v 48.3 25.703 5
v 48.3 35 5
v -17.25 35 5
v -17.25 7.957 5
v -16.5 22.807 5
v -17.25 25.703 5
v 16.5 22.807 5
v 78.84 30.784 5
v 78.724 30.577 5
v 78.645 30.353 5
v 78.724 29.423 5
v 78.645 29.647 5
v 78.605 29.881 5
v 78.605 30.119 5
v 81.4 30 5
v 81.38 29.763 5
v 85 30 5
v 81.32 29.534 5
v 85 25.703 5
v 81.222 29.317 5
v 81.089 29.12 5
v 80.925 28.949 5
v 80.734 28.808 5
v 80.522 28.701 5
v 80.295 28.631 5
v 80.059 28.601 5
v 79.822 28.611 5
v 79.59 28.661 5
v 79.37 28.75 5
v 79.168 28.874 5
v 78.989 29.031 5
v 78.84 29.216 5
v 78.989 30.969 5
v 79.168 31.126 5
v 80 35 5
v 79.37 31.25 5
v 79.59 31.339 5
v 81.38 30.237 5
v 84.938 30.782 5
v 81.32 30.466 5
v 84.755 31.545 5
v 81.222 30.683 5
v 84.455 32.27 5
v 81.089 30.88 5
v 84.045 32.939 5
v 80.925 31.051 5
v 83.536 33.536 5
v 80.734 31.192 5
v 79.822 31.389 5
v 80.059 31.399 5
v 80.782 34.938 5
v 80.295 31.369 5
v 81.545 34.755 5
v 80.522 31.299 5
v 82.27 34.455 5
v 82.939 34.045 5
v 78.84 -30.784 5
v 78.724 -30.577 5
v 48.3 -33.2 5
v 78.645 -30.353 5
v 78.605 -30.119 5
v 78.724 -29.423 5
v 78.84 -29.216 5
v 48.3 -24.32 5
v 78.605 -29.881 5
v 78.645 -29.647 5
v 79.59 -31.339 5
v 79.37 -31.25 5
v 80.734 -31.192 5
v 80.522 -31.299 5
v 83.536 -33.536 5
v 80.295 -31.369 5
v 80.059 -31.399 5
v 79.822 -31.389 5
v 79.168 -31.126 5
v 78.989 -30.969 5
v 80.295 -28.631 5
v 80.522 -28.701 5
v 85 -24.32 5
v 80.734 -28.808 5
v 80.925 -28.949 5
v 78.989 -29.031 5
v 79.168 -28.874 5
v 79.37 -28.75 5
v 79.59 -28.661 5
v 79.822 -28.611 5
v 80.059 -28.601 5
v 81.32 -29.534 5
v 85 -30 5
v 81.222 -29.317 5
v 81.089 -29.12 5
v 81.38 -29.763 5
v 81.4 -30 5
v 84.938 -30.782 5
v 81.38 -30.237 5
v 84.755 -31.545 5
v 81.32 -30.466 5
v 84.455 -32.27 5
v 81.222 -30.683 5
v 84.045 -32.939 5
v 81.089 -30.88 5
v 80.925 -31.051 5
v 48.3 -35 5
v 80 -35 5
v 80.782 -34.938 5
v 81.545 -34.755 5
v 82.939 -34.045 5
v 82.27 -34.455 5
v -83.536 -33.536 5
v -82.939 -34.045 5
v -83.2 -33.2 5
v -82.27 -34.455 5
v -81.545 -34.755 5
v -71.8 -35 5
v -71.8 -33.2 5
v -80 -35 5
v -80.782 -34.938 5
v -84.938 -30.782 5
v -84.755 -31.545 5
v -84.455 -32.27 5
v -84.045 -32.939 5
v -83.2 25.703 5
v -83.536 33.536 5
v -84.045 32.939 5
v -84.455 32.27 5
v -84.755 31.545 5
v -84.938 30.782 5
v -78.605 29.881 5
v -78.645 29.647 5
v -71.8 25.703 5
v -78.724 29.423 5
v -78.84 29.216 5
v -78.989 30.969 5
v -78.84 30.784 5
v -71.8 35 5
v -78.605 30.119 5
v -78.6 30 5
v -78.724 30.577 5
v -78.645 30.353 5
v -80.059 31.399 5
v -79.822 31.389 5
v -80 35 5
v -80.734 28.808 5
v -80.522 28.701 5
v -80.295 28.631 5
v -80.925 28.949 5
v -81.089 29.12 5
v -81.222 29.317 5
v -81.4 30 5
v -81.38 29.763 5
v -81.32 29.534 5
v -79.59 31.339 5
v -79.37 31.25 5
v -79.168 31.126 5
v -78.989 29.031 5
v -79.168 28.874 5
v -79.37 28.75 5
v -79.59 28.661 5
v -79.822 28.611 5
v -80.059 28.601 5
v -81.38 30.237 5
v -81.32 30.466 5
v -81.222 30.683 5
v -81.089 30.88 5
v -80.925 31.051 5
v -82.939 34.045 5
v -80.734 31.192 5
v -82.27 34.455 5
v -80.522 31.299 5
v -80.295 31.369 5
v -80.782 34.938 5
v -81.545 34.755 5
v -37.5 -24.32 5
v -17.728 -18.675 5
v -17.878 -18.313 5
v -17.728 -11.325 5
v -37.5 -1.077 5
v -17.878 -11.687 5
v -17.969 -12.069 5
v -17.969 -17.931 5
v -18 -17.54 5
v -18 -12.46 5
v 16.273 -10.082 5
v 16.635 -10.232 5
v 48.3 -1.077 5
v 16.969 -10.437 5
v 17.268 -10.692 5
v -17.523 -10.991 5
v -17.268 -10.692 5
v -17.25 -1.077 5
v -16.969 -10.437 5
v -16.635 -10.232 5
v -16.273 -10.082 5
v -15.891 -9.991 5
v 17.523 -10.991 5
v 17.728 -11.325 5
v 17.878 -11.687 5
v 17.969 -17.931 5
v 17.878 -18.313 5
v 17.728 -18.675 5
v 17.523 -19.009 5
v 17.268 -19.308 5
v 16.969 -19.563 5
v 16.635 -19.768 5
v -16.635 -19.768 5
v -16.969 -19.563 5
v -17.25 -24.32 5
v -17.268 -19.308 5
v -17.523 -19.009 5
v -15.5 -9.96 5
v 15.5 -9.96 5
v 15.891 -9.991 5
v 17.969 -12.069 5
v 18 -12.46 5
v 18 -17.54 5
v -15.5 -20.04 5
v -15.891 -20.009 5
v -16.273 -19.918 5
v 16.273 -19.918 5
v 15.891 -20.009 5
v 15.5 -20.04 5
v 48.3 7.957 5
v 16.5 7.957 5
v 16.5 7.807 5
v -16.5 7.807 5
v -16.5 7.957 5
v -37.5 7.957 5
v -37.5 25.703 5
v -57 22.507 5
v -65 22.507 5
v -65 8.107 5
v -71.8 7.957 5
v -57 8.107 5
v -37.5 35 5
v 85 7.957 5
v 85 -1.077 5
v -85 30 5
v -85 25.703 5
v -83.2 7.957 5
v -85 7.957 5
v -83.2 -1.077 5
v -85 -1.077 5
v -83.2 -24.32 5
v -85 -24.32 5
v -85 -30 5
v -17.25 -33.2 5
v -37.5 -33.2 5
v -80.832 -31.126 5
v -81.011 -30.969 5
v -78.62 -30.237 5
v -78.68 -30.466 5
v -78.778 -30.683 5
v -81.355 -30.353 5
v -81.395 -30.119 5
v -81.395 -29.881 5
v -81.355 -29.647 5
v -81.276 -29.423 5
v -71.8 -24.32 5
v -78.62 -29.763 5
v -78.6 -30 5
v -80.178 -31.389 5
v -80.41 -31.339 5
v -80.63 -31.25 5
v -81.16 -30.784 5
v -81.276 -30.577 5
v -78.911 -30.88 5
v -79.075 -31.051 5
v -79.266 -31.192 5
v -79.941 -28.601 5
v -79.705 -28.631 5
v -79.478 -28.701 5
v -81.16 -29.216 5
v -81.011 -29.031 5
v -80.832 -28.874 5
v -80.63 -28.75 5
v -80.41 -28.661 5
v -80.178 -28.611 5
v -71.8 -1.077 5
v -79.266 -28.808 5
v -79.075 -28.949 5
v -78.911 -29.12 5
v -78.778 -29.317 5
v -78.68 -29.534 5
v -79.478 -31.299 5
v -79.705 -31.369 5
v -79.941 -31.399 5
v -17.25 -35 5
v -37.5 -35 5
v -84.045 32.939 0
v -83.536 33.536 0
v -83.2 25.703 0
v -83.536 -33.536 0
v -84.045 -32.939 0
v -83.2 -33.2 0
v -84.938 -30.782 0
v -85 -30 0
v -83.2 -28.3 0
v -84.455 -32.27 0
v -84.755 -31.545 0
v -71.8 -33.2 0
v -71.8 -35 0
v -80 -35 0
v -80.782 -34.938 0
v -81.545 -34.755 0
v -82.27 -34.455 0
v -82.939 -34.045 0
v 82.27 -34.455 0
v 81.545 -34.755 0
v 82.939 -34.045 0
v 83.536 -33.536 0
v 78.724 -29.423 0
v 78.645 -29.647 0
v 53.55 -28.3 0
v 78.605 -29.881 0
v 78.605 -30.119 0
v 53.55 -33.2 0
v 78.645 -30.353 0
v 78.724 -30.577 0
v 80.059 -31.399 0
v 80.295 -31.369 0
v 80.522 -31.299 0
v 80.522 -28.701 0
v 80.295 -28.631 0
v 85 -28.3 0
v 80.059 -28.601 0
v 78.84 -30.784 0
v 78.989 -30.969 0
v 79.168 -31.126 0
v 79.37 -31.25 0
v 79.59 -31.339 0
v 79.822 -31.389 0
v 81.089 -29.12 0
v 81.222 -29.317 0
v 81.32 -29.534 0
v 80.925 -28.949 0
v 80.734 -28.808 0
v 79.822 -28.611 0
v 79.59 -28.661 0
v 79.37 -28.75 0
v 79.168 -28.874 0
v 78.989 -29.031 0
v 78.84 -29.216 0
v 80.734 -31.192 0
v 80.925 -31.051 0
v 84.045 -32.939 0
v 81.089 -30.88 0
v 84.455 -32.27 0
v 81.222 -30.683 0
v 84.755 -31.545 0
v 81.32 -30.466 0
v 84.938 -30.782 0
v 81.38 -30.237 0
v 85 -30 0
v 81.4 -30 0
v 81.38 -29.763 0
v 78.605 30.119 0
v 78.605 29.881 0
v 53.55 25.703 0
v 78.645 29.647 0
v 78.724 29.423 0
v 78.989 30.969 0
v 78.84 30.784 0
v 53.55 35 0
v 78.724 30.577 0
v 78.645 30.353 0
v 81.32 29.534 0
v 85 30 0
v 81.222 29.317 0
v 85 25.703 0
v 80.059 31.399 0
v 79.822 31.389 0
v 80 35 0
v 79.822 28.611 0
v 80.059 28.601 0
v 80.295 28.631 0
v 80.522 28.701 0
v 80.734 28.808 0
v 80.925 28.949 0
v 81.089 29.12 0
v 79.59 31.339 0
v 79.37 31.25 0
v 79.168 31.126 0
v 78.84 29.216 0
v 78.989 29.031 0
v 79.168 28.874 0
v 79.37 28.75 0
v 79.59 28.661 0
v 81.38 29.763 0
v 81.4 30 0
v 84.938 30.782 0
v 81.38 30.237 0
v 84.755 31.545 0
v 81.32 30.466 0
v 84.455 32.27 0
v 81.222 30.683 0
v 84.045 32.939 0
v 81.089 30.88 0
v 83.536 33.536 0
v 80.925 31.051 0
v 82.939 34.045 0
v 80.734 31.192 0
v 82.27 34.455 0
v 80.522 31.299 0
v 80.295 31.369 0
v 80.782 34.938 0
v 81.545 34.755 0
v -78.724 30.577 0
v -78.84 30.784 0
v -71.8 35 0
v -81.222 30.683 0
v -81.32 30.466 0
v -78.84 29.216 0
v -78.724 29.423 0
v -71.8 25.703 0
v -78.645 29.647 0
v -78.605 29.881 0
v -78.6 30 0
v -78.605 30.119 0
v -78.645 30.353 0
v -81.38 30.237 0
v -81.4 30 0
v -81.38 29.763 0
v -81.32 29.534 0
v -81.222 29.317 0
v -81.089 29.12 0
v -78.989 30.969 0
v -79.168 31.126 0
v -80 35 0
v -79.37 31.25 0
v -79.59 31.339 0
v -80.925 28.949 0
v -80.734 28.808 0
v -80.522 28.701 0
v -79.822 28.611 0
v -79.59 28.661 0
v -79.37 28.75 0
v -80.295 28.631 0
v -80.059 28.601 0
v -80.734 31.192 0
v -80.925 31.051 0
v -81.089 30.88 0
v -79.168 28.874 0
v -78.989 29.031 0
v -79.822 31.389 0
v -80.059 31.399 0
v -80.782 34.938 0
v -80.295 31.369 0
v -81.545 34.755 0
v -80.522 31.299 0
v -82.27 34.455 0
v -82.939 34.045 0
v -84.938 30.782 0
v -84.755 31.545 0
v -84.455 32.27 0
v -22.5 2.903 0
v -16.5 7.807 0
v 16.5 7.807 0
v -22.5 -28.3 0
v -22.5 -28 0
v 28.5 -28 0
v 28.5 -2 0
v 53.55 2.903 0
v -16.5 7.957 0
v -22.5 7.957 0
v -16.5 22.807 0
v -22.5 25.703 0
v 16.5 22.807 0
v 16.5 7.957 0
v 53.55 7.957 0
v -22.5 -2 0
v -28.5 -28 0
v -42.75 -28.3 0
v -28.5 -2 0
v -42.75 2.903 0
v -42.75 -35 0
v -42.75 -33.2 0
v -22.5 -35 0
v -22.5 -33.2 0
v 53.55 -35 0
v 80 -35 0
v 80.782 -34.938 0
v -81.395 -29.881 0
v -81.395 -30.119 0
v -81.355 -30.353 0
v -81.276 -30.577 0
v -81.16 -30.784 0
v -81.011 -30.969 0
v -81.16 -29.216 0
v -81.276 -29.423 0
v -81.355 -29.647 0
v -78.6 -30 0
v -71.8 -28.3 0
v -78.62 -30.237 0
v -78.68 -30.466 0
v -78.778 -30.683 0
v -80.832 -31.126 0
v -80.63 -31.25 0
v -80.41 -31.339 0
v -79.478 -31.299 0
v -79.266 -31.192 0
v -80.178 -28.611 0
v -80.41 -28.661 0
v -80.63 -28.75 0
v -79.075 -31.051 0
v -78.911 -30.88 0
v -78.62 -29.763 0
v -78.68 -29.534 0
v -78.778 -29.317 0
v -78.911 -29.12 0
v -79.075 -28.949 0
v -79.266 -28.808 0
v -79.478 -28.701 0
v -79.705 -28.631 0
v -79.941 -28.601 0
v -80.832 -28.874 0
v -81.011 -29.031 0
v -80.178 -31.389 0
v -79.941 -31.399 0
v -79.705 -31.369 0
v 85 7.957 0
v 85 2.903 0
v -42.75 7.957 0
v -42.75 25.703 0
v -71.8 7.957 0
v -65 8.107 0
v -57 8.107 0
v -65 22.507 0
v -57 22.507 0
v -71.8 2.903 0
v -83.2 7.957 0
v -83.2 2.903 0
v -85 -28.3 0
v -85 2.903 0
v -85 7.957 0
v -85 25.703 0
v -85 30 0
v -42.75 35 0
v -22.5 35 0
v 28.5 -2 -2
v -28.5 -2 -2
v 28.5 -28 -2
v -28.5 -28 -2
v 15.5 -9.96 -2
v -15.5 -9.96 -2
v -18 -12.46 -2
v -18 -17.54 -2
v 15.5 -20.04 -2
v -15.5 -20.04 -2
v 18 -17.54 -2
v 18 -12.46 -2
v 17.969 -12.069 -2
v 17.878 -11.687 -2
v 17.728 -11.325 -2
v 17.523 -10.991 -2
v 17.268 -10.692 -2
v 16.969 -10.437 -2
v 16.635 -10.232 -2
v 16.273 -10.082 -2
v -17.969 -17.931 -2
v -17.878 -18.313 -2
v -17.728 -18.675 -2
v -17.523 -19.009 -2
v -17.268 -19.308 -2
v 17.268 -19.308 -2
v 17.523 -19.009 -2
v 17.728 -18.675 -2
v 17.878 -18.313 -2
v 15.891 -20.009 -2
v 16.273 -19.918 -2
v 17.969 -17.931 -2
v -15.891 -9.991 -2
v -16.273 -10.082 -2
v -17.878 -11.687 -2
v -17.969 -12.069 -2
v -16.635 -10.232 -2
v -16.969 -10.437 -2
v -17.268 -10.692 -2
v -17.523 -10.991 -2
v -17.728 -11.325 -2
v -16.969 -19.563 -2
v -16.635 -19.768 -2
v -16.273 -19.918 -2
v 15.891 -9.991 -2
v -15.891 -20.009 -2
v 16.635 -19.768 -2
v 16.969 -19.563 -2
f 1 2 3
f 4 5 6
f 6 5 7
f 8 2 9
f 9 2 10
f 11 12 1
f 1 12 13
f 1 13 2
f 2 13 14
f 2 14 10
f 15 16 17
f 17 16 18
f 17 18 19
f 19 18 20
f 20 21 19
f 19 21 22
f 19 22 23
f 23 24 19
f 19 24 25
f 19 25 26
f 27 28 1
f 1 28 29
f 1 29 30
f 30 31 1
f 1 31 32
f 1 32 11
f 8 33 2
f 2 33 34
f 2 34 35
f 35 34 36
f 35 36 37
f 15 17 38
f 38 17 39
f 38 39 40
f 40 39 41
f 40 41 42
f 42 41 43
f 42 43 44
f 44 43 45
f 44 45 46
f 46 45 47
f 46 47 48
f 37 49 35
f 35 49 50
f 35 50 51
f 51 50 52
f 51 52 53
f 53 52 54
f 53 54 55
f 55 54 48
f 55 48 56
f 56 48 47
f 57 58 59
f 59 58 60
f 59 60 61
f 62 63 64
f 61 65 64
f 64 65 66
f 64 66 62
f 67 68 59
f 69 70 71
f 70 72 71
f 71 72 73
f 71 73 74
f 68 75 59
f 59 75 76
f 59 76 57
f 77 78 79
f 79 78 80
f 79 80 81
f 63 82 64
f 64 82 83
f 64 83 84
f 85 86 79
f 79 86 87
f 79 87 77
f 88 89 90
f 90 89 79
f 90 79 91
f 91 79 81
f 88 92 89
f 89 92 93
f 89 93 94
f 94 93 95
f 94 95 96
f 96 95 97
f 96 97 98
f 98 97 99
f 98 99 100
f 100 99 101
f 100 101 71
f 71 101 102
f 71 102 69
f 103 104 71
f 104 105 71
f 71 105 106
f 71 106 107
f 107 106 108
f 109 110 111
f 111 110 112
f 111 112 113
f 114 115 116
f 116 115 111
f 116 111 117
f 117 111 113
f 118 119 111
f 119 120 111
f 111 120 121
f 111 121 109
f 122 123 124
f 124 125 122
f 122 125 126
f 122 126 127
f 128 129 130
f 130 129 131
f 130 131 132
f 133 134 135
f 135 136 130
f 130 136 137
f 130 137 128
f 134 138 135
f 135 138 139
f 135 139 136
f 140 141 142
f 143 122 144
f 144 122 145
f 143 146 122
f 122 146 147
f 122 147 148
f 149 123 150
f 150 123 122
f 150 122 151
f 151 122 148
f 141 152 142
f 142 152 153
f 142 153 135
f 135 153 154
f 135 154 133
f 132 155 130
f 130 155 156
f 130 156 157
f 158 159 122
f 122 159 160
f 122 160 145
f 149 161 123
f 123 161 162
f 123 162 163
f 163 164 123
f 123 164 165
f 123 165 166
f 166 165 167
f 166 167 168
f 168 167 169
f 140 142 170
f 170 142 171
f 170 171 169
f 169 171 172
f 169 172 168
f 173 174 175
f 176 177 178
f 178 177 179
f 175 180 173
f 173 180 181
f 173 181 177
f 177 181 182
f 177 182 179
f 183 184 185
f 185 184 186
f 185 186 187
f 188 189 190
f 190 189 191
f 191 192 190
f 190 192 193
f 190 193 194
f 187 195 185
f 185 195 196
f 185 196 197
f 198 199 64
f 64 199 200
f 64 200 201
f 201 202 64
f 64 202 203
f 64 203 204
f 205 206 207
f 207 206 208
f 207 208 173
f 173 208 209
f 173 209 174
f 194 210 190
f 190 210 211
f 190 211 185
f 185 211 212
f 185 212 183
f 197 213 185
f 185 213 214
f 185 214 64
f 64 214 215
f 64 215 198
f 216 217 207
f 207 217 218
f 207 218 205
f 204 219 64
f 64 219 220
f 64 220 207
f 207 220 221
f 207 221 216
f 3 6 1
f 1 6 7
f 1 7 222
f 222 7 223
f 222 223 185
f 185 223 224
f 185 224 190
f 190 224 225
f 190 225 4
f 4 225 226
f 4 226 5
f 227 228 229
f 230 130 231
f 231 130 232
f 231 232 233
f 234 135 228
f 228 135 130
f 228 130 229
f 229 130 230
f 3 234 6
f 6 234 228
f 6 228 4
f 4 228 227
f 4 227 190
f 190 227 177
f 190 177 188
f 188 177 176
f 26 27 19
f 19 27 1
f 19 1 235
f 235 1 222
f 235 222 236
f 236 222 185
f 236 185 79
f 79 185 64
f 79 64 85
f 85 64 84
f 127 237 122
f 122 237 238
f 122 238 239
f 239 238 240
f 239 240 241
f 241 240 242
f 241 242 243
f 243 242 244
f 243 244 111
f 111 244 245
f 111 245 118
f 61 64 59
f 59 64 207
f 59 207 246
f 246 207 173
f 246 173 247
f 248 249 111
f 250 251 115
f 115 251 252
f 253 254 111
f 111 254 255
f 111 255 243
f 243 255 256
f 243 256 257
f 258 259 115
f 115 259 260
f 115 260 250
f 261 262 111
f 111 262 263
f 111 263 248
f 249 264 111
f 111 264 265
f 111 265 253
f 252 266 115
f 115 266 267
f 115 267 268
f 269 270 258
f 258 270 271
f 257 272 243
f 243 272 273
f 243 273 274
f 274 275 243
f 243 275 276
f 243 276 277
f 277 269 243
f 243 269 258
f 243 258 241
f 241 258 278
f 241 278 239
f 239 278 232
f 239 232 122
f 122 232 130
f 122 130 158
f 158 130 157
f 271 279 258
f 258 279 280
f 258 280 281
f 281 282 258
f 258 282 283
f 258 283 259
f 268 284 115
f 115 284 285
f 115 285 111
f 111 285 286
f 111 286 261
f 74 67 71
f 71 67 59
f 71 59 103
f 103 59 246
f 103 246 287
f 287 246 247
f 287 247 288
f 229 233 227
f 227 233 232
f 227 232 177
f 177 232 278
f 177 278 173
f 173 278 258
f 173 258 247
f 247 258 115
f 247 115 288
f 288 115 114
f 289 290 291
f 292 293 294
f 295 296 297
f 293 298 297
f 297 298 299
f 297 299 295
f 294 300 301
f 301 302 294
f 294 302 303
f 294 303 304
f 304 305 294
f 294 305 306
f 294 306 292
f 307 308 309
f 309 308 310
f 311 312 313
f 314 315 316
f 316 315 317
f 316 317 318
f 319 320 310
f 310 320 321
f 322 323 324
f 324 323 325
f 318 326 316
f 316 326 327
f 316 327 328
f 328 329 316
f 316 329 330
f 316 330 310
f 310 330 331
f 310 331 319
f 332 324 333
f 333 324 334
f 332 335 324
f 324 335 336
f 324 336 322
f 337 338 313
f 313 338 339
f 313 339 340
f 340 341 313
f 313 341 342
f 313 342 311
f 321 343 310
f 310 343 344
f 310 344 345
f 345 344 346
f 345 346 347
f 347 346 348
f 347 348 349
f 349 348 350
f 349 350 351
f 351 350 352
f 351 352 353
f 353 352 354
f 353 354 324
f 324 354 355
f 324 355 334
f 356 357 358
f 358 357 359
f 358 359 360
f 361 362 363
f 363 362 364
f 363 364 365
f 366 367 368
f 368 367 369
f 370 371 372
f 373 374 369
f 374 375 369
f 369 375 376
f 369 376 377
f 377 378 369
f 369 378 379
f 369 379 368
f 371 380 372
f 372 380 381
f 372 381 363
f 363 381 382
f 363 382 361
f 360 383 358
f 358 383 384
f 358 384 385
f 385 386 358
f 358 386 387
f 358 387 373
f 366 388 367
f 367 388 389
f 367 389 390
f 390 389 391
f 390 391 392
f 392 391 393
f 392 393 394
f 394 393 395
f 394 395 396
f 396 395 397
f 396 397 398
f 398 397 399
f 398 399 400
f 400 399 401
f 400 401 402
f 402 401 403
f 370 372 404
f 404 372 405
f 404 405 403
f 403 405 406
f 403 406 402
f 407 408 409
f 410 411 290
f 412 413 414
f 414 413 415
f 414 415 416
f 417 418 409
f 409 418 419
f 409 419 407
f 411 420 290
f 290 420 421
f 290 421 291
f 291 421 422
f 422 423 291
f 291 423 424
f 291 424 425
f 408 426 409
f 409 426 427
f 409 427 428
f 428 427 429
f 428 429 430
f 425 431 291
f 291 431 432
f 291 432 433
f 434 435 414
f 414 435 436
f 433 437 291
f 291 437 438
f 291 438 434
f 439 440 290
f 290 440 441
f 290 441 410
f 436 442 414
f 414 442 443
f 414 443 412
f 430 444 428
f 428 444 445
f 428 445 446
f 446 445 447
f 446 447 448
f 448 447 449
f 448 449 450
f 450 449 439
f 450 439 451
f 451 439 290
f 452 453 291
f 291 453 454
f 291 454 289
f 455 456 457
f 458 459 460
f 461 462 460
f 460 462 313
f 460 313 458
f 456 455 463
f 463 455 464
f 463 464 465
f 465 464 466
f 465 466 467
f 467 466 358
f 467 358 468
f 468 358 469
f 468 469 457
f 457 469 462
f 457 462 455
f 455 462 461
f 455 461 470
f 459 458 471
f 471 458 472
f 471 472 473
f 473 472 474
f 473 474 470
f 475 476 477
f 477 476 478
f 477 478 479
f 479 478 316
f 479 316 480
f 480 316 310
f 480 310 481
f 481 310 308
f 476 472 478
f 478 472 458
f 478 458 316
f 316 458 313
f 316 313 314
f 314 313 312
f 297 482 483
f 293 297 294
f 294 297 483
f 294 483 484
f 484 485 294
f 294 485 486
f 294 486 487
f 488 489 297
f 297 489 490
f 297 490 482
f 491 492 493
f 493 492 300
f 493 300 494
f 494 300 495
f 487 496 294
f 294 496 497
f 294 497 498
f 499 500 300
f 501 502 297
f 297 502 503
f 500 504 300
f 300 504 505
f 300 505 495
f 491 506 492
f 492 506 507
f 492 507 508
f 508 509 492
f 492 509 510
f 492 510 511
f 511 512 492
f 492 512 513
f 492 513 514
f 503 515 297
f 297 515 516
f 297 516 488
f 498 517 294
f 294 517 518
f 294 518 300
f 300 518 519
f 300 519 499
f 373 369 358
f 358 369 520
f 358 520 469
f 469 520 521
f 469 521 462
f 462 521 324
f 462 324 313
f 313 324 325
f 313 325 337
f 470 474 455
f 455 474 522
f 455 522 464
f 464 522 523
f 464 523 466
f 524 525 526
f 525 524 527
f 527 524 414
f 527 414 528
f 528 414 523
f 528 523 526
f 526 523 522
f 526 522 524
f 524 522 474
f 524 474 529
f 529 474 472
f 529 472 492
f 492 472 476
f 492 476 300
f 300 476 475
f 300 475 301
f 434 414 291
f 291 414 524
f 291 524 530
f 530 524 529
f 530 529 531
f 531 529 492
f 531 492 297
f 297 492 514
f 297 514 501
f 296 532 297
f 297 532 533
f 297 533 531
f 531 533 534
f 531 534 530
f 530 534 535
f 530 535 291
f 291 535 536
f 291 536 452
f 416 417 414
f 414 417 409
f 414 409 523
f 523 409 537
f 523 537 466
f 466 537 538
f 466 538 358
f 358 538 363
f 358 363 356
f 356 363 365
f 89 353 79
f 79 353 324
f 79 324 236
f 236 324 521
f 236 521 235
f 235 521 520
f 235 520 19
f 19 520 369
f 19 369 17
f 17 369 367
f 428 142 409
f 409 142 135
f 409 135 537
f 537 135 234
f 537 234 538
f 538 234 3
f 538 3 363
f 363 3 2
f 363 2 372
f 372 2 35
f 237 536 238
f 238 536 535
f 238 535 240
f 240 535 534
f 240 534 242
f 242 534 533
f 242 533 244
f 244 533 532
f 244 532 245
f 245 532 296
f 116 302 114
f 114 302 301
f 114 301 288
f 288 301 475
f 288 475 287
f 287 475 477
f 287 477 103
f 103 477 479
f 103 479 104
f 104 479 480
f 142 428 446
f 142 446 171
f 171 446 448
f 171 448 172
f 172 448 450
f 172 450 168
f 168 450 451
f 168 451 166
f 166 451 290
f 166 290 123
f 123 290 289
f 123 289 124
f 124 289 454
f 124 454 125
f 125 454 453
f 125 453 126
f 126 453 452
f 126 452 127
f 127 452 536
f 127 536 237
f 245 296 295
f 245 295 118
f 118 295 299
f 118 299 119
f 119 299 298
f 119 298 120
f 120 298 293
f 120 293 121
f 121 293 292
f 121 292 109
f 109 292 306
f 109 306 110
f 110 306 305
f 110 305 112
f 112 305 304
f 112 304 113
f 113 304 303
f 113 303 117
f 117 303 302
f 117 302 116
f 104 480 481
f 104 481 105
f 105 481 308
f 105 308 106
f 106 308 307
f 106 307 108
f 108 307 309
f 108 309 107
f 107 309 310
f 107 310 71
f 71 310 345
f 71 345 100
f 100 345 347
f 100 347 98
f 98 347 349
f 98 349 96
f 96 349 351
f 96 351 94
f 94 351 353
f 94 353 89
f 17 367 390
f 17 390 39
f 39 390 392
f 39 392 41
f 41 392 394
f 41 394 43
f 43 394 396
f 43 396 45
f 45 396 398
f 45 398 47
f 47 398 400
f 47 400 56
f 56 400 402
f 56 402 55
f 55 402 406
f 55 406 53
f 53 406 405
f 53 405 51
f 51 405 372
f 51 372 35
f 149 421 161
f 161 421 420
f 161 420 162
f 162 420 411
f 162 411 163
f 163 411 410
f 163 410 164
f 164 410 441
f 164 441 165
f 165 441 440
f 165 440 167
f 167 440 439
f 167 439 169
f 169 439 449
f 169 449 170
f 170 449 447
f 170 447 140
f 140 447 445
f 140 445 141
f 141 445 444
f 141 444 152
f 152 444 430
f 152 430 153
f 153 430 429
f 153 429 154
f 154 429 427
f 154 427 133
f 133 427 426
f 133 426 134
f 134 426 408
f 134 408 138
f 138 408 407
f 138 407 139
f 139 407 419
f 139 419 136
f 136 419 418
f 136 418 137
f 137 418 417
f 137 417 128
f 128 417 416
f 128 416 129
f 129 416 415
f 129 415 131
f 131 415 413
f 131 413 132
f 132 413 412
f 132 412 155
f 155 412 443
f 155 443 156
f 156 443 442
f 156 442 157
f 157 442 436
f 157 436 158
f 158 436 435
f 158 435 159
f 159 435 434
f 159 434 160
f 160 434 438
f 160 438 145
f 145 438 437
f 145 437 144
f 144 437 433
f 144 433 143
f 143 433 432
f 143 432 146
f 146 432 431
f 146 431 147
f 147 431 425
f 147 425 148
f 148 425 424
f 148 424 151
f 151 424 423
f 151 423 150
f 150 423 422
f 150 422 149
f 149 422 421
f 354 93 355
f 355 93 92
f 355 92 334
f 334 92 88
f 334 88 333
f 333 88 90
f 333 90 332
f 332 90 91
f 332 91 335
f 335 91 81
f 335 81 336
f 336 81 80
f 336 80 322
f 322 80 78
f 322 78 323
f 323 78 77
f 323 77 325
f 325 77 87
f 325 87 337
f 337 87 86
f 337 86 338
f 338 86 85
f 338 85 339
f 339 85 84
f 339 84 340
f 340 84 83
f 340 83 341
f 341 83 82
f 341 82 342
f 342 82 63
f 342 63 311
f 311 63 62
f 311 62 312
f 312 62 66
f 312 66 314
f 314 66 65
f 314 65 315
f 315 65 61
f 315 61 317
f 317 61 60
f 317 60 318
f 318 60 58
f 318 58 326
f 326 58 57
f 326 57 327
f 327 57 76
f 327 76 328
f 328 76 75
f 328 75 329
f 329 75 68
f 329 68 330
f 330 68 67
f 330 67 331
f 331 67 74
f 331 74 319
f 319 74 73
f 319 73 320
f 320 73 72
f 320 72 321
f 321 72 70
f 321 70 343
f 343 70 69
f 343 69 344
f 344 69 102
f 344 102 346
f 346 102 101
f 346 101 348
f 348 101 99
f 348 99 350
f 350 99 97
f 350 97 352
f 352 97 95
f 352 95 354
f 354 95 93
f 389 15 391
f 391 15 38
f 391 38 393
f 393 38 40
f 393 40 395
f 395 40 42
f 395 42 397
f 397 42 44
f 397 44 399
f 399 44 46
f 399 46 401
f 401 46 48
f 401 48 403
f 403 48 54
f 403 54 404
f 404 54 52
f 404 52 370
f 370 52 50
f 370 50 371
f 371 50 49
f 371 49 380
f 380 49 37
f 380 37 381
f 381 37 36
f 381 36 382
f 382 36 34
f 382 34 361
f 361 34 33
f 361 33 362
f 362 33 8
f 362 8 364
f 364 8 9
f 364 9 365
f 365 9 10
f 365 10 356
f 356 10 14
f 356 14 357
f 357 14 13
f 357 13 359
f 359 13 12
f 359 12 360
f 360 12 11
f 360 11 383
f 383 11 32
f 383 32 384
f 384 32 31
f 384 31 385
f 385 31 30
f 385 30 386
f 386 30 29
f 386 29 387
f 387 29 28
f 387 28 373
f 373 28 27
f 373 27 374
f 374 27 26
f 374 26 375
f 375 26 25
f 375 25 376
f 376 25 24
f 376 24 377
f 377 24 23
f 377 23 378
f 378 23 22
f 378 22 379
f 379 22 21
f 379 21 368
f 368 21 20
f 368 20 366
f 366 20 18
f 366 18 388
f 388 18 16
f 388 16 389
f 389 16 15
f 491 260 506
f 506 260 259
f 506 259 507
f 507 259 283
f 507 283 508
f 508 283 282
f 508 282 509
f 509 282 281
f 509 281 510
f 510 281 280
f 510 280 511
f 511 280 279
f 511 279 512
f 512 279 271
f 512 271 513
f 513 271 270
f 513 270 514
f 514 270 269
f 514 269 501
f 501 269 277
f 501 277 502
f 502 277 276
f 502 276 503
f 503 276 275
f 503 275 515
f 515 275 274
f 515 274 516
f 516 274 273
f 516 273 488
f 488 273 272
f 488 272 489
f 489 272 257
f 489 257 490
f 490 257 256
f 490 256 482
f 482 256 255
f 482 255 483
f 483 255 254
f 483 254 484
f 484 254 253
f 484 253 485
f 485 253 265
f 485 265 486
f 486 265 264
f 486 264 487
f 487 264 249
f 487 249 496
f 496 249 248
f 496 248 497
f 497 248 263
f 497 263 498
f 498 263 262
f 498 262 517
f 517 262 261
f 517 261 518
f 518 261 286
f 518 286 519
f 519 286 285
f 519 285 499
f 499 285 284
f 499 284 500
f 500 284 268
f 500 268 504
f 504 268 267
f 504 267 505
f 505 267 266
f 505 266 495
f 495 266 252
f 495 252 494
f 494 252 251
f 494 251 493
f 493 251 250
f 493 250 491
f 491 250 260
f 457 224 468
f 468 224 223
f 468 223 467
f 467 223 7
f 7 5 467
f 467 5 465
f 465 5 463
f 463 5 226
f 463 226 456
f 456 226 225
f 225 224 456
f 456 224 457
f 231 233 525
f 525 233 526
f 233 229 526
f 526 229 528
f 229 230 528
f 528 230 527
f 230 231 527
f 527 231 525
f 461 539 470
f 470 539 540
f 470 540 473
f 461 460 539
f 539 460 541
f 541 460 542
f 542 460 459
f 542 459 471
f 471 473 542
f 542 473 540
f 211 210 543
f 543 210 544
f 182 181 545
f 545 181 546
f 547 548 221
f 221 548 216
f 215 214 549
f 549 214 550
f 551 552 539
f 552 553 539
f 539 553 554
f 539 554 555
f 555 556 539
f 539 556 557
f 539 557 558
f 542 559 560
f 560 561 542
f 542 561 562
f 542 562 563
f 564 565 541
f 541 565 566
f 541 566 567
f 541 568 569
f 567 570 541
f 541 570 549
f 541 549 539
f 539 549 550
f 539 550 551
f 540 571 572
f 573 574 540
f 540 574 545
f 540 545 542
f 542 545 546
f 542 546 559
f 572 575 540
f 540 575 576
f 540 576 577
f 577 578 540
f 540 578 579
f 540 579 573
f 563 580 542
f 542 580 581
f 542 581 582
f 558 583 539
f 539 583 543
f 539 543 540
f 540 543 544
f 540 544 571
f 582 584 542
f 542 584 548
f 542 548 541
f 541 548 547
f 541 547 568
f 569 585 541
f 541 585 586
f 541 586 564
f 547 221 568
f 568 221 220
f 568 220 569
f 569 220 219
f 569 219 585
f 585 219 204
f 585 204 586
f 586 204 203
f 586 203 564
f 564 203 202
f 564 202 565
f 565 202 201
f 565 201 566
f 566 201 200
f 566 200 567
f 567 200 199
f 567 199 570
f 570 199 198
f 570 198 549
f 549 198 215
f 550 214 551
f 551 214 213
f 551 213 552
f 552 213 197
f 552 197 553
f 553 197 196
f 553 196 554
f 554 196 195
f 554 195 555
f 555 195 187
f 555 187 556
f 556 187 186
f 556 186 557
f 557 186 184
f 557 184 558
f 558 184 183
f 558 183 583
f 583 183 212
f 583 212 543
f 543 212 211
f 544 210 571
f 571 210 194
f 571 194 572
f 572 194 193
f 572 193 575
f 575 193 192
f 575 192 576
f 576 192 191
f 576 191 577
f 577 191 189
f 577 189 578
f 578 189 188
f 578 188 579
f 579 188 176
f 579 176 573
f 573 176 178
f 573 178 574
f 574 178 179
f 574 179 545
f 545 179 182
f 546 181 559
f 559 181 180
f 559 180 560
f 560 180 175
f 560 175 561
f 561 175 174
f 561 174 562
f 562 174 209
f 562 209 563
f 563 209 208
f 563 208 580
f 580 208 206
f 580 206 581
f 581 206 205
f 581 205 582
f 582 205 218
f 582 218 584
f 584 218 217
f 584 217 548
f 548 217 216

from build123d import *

# Parameters (mm, degrees)
SKETCH1_W           = 170
SKETCH1_H           = 70
BOSS_EXTRUDE1_DEPTH = 5
FILLET2_R           = 5
SKETCH3_R           = 1.4
CUT_EXTRUDE1_DEPTH  = 5
SKETCH5_R           = 1.4
CUT_EXTRUDE2_DEPTH  = 5
CUT_EXTRUDE5_DEPTH  = 5
CUT_EXTRUDE7_DEPTH  = 5
BOSS_EXTRUDE2_DEPTH = 10
CUT_EXTRUDE8_DEPTH  = 10
SKETCH10_W          = 3
SKETCH10_H          = 26
CUT_EXTRUDE9_DEPTH  = 57
FILLET3_R           = 2.5


with BuildPart() as part:
    # Sketch1 → Boss-Extrude1 (new body)
    with BuildSketch(Plane.XY):
        Rectangle(SKETCH1_W, SKETCH1_H)
    extrude(amount=BOSS_EXTRUDE1_DEPTH)

    # Fillet2
    fillet2_edges = [part.edges().sort_by_distance(p)[0] for p in [
        (85, -35, 2.5),
        (-85, -35, 2.5),
        (-85, 35, 2.5),
        (85, 35, 2.5),
    ]]
    fillet(fillet2_edges, radius=FILLET2_R)

    # Sketch3 → Cut-Extrude1 (cut)
    with BuildSketch(Plane.XY):
        with Locations((-80, 30)):
            Circle(SKETCH3_R)
    extrude(amount=CUT_EXTRUDE1_DEPTH, mode=Mode.SUBTRACT)

    # Sketch5 → Cut-Extrude2 (cut)
    with BuildSketch(Plane.XY.offset(5)):
        with Locations((-80, -30)):
            Circle(SKETCH5_R)
        with Locations((80, 30)):
            Circle(SKETCH5_R)
        with Locations((80, -30)):
            Circle(SKETCH5_R)
    extrude(amount=-CUT_EXTRUDE2_DEPTH, mode=Mode.SUBTRACT)

    # Sketch6 → Cut-Extrude5 (cut)
    with BuildSketch(Plane.XY):
        Polygon((0, 7.806871993), (16.5, 7.806871993), (16.5, 22.806871993), (-16.5, 22.806871993), (-16.5, 7.806871993), align=None)
    extrude(amount=CUT_EXTRUDE5_DEPTH, mode=Mode.SUBTRACT)

    # Sketch7 → Cut-Extrude7 (cut)
    with BuildSketch(Plane.XY):
        Polygon((-65, 15.306871993), (-65, 22.506871993), (-57, 22.506871993), (-57, 15.306871993), (-57, 8.106871993), (-65, 8.106871993), align=None)
    extrude(amount=CUT_EXTRUDE7_DEPTH, mode=Mode.SUBTRACT)

    # Sketch8 → Boss-Extrude2 (add)
    with BuildSketch(Plane.XY.offset(5)):
        Polygon((0, -2), (28.5, -2), (28.5, -14.153073617), (28.5, -28), (-28.5, -28), (-28.5, -14.153073617), (-28.5, -2), align=None)
    extrude(amount=-BOSS_EXTRUDE2_DEPTH)

    # Sketch9 → Cut-Extrude8 (cut)
    with BuildSketch(Plane(origin=(0, 0, -5), x_dir=(-1, 0, 0), z_dir=(0, 0, -1))):
        Polygon((18, -20.04), (-18, -20.04), (-18, -15), (-18, -9.96), (18, -9.96), (18, -15), align=None)
    extrude(amount=-CUT_EXTRUDE8_DEPTH, mode=Mode.SUBTRACT)

    # Sketch10 → Cut-Extrude9 (cut)
    with BuildSketch(Plane(origin=(28.5, 0, 0), x_dir=(0, 0, -1), z_dir=(1, 0, 0))):
        with Locations((3.5, -15)):
            Rectangle(SKETCH10_W, SKETCH10_H)
    extrude(amount=-CUT_EXTRUDE9_DEPTH, mode=Mode.SUBTRACT)

    # Fillet3
    fillet3_edges = [part.edges().sort_by_distance(p)[0] for p in [
        (18, -9.96, 1.5),
        (-18, -9.96, 1.5),
        (-18, -20.04, 1.5),
        (18, -20.04, 1.5),
    ]]
    fillet(fillet3_edges, radius=FILLET3_R)


solid = part.part
